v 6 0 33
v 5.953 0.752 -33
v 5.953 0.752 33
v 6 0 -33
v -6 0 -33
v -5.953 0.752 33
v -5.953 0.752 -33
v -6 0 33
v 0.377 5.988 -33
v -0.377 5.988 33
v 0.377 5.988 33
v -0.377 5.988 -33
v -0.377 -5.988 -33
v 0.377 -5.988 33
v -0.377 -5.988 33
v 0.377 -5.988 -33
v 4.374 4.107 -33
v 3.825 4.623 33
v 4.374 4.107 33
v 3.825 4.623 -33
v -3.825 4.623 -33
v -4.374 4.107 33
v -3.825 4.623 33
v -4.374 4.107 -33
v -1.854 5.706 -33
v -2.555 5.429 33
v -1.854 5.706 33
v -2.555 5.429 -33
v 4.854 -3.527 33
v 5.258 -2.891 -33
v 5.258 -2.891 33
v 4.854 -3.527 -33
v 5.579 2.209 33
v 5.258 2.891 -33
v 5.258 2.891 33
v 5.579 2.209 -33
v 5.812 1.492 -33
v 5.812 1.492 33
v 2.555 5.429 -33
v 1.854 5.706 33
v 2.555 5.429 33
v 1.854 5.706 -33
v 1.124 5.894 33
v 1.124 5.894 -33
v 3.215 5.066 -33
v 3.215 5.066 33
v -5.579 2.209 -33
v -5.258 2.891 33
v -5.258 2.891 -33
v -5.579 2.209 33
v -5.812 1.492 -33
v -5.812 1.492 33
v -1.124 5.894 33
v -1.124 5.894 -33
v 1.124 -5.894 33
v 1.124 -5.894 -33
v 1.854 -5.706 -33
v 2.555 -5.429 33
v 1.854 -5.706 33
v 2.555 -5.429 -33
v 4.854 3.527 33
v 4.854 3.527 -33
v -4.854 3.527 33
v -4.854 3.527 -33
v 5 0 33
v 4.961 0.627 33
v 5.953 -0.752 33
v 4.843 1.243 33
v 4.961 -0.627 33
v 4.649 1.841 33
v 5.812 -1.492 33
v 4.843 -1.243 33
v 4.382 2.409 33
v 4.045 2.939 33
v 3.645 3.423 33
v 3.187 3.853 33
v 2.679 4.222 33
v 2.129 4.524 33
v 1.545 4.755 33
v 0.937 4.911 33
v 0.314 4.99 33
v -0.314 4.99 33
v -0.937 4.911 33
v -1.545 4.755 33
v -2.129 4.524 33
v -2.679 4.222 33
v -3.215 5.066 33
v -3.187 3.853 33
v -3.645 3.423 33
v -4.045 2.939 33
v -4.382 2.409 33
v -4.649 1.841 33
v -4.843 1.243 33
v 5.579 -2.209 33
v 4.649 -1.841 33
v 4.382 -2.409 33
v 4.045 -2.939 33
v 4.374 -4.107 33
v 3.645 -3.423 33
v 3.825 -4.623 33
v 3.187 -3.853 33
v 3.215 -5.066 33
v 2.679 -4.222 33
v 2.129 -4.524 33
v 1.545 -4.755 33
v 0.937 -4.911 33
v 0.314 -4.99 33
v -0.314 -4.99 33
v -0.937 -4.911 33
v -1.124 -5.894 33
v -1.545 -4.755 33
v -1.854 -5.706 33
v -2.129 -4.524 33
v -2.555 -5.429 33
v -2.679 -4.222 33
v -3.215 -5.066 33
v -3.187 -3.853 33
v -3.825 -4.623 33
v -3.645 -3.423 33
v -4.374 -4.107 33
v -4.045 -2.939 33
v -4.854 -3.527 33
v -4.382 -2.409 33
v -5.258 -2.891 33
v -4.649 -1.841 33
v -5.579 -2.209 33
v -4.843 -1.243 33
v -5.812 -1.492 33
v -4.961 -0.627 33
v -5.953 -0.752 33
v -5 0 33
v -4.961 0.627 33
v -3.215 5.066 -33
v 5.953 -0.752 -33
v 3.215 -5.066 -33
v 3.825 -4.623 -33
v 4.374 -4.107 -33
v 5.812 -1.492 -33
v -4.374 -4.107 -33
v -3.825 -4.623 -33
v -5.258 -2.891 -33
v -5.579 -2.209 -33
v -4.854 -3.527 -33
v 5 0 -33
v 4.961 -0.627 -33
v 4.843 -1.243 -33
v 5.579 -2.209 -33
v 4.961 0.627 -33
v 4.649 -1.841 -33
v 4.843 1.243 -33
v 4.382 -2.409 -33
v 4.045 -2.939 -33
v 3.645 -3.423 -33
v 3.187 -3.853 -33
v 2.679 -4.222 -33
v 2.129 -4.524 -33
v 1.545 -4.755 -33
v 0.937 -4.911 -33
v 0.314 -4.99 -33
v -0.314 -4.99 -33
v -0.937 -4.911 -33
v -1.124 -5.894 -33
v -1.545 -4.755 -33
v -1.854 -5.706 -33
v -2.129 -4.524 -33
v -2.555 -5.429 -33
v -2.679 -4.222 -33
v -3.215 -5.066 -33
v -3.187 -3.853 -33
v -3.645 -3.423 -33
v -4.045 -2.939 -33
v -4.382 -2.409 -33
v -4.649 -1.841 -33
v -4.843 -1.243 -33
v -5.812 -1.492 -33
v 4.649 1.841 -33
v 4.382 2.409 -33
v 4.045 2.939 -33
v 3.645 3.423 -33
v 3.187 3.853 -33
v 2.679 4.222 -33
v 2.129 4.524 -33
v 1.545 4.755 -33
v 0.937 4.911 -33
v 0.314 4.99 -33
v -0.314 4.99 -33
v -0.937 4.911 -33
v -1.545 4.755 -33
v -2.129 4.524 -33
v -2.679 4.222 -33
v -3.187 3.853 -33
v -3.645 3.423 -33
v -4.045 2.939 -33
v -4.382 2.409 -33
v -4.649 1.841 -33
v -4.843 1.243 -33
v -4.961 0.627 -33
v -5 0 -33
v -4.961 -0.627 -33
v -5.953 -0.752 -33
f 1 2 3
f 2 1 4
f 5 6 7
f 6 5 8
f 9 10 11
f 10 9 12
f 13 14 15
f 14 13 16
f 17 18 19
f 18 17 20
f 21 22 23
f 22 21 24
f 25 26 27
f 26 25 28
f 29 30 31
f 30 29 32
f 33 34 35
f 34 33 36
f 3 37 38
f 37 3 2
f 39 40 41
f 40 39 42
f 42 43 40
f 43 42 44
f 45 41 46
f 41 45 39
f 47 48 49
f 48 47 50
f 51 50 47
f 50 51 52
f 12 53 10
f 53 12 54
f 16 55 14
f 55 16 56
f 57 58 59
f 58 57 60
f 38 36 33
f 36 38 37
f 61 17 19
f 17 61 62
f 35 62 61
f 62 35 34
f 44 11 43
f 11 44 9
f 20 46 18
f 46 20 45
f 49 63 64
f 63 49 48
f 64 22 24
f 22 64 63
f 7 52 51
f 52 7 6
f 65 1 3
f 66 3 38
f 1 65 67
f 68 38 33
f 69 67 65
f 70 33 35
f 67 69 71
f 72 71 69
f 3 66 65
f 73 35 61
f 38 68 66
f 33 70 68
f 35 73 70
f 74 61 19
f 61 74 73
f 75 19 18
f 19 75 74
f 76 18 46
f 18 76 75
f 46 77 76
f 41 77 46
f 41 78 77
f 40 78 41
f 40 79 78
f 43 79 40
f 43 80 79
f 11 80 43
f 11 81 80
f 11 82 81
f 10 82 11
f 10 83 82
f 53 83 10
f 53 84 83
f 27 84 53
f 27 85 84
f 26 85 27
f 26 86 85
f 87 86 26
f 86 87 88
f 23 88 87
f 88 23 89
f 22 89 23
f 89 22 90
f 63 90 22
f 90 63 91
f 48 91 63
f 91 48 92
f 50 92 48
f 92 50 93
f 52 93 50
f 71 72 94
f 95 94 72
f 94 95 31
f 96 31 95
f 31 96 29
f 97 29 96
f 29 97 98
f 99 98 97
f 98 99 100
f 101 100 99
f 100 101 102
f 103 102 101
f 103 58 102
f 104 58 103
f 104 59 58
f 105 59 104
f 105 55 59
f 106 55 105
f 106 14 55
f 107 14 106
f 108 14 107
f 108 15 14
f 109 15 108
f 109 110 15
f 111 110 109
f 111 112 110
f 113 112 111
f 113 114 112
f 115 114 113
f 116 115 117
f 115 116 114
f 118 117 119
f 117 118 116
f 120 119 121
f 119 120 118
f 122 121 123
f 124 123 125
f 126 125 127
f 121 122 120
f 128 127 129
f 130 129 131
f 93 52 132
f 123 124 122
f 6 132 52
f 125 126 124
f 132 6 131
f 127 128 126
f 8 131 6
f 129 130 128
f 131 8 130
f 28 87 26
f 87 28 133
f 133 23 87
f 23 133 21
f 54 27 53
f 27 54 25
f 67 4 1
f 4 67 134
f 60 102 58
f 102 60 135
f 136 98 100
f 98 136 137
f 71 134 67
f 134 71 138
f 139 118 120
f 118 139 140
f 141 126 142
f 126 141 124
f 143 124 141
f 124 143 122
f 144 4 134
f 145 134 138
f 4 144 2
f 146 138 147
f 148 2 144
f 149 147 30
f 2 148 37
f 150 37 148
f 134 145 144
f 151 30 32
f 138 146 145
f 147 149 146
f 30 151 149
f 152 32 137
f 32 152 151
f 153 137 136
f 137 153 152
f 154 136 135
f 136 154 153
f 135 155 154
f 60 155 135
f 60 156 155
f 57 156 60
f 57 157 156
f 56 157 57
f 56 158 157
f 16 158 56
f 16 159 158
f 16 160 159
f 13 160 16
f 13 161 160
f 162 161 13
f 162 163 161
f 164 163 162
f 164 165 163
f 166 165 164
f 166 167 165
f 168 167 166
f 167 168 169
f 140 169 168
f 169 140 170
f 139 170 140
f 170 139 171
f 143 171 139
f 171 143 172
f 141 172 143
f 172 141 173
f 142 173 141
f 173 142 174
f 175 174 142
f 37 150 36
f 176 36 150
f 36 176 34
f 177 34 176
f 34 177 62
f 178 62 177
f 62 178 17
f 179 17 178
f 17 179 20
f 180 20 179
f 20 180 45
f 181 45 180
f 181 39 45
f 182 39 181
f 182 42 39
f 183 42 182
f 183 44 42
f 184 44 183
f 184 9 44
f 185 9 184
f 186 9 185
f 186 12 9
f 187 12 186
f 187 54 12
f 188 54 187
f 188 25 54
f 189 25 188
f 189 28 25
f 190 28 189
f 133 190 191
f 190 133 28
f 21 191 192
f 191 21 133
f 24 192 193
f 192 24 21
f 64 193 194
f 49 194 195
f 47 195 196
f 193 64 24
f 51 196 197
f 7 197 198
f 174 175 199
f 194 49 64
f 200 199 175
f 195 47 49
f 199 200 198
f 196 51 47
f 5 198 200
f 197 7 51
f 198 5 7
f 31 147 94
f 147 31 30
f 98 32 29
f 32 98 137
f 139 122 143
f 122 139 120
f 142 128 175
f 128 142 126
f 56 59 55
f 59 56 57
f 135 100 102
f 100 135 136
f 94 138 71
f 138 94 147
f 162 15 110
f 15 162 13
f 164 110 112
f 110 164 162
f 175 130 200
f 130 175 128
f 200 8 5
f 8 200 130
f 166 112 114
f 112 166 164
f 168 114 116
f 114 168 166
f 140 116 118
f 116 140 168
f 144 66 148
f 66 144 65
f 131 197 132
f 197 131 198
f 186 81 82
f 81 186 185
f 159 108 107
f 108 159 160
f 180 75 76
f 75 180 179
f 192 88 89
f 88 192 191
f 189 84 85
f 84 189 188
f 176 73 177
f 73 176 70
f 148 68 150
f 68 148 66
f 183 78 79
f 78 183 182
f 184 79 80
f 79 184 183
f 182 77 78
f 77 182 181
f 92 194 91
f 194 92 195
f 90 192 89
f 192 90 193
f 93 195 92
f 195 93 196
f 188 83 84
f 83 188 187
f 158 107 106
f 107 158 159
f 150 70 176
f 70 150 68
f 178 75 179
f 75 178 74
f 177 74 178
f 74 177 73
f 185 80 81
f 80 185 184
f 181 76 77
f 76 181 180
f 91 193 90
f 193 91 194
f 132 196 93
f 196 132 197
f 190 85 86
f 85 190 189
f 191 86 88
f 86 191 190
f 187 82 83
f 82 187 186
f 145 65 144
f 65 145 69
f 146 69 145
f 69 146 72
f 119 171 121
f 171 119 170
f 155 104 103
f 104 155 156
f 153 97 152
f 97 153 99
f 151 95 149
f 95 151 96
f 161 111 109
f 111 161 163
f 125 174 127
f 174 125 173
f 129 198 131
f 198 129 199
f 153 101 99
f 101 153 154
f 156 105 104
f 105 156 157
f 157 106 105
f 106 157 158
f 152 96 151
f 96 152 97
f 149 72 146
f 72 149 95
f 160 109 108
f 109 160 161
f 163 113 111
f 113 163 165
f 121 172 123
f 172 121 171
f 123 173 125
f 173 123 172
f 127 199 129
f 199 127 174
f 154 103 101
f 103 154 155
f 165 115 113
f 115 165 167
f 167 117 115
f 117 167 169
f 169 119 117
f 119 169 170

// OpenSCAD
$fn = 50;


difference() {
	union() {
		translate(v = [0, 0, -33.0000000000]) {
			cylinder(h = 66, r = 6.0000000000);
		}
	}
	union() {
		translate(v = [0, 0, -100.0000000000]) {
			cylinder(h = 200, r = 5.0000000000);
		}
	}
}
